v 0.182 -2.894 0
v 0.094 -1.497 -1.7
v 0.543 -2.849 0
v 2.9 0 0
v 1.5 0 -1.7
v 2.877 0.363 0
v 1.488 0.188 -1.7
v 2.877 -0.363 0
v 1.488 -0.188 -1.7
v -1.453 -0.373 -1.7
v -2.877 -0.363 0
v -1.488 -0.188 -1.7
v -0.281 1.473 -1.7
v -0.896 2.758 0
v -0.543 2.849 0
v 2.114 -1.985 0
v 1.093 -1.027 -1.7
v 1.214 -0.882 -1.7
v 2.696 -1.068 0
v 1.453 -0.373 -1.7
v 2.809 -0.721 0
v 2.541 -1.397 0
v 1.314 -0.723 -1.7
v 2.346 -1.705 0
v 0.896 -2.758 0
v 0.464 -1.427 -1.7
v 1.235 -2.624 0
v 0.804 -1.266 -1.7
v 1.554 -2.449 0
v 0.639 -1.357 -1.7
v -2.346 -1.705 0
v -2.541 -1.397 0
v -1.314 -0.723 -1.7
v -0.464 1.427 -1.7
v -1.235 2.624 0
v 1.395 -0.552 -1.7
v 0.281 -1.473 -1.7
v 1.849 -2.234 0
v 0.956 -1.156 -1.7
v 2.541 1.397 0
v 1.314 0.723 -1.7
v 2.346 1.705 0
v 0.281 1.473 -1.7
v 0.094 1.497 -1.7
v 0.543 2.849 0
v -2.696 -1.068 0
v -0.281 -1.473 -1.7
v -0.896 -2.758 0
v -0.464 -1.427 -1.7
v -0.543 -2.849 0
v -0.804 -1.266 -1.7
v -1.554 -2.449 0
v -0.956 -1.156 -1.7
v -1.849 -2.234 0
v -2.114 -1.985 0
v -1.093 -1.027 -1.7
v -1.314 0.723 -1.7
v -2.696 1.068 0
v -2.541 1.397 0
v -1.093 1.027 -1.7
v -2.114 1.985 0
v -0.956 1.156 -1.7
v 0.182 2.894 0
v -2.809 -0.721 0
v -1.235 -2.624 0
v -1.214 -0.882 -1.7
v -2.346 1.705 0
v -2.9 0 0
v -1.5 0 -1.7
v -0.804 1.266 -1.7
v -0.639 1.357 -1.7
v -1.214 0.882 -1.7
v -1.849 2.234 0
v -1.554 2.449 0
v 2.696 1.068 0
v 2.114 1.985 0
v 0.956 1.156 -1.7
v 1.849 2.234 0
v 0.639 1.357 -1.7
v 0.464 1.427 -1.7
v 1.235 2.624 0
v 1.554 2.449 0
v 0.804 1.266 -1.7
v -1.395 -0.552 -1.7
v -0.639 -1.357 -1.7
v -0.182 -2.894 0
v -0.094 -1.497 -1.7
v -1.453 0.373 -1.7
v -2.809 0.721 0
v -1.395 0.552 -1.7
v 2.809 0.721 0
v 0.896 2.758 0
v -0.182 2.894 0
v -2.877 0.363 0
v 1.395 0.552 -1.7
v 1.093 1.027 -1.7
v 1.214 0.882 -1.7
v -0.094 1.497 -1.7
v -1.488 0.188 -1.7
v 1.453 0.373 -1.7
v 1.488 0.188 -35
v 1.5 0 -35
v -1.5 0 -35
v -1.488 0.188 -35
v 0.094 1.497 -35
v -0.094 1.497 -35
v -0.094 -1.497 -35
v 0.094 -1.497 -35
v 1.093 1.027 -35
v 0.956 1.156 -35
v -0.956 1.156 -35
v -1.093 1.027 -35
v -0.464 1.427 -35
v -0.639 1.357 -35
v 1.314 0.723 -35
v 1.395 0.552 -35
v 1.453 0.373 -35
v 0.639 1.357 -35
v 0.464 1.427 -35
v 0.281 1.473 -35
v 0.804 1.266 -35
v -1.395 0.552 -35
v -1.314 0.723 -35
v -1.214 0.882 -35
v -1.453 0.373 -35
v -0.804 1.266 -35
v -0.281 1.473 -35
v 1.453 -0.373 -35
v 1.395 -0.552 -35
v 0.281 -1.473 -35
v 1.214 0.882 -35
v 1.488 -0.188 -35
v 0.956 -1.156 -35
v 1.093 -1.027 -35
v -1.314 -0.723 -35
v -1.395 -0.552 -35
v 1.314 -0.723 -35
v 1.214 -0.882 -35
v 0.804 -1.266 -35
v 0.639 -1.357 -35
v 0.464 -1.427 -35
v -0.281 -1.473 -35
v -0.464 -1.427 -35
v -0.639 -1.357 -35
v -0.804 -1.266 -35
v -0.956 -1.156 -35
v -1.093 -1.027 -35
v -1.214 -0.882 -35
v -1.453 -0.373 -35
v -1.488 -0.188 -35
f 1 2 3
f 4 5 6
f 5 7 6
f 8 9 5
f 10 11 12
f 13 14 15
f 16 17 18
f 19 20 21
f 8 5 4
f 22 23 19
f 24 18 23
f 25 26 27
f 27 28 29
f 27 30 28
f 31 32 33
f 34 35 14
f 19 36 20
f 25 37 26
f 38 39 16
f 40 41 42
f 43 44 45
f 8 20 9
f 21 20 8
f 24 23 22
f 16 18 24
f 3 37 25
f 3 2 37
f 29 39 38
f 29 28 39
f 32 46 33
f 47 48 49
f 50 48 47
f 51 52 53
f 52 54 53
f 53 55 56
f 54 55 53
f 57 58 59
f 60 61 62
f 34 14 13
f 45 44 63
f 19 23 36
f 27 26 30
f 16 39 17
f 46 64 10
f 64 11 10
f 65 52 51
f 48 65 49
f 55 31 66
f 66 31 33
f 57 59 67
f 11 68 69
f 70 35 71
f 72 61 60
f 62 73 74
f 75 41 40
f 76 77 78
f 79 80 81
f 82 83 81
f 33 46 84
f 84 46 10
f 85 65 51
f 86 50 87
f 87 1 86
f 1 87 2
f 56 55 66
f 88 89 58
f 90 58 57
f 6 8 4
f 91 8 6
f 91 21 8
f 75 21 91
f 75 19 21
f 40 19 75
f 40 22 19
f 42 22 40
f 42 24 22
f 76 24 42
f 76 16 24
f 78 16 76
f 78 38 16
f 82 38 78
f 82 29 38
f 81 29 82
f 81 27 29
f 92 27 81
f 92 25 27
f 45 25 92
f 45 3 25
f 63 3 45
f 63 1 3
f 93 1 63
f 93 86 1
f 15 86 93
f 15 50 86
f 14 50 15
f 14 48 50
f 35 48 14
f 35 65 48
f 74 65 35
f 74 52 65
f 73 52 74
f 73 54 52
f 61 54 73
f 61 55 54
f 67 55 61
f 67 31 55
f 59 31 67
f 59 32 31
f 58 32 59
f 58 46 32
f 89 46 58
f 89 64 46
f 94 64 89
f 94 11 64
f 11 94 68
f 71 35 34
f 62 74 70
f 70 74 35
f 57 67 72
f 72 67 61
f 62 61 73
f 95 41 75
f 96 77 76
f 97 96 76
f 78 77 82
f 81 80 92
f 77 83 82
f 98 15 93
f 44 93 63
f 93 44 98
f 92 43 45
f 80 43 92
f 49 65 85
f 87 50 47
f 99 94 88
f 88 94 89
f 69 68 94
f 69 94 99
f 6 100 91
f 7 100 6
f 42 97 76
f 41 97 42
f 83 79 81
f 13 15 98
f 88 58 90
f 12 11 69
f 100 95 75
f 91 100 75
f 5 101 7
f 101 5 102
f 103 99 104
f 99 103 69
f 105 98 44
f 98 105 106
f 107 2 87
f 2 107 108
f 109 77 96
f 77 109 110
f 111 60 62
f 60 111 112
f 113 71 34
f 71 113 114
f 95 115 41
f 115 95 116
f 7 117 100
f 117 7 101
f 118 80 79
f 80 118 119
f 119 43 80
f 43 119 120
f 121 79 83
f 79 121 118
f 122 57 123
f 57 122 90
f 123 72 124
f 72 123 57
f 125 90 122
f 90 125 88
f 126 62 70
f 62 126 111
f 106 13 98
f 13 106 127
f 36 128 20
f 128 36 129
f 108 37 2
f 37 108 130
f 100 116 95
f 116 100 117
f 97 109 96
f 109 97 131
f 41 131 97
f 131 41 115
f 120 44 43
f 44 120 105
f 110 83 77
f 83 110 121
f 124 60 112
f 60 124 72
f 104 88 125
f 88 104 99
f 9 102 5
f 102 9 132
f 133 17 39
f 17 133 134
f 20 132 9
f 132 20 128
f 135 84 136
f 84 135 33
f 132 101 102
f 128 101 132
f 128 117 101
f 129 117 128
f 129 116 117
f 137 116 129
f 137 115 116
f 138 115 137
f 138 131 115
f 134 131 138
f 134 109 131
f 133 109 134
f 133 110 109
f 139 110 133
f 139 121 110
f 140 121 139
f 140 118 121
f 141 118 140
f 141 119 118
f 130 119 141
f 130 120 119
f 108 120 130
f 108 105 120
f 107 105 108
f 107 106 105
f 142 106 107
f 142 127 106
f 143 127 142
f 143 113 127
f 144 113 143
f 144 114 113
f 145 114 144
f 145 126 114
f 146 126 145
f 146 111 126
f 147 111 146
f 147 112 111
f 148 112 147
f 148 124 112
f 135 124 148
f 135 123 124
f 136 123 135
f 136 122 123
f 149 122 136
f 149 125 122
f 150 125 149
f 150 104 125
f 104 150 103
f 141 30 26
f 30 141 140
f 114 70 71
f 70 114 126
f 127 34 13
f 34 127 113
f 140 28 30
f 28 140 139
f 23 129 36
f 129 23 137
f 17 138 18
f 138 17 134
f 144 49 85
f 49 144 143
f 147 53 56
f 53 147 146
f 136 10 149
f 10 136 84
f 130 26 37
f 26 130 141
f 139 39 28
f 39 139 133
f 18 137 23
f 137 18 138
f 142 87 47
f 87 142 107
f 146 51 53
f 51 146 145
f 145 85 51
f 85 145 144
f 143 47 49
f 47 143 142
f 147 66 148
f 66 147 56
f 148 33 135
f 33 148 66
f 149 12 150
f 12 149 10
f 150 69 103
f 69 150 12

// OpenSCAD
$fn = 50;


difference() {
	union() {
		translate(v = [0, 0, -1.7000000000]) {
			rotate(a = [0, 0, 0]) {
				cylinder(h = 1.7000000000, r1 = 1.5000000000, r2 = 2.9000000000);
			}
		}
		translate(v = [0, 0, -35]) {
			rotate(a = [0, 0, 0]) {
				cylinder(h = 35, r = 1.5000000000);
			}
		}
	}
	union();
}
